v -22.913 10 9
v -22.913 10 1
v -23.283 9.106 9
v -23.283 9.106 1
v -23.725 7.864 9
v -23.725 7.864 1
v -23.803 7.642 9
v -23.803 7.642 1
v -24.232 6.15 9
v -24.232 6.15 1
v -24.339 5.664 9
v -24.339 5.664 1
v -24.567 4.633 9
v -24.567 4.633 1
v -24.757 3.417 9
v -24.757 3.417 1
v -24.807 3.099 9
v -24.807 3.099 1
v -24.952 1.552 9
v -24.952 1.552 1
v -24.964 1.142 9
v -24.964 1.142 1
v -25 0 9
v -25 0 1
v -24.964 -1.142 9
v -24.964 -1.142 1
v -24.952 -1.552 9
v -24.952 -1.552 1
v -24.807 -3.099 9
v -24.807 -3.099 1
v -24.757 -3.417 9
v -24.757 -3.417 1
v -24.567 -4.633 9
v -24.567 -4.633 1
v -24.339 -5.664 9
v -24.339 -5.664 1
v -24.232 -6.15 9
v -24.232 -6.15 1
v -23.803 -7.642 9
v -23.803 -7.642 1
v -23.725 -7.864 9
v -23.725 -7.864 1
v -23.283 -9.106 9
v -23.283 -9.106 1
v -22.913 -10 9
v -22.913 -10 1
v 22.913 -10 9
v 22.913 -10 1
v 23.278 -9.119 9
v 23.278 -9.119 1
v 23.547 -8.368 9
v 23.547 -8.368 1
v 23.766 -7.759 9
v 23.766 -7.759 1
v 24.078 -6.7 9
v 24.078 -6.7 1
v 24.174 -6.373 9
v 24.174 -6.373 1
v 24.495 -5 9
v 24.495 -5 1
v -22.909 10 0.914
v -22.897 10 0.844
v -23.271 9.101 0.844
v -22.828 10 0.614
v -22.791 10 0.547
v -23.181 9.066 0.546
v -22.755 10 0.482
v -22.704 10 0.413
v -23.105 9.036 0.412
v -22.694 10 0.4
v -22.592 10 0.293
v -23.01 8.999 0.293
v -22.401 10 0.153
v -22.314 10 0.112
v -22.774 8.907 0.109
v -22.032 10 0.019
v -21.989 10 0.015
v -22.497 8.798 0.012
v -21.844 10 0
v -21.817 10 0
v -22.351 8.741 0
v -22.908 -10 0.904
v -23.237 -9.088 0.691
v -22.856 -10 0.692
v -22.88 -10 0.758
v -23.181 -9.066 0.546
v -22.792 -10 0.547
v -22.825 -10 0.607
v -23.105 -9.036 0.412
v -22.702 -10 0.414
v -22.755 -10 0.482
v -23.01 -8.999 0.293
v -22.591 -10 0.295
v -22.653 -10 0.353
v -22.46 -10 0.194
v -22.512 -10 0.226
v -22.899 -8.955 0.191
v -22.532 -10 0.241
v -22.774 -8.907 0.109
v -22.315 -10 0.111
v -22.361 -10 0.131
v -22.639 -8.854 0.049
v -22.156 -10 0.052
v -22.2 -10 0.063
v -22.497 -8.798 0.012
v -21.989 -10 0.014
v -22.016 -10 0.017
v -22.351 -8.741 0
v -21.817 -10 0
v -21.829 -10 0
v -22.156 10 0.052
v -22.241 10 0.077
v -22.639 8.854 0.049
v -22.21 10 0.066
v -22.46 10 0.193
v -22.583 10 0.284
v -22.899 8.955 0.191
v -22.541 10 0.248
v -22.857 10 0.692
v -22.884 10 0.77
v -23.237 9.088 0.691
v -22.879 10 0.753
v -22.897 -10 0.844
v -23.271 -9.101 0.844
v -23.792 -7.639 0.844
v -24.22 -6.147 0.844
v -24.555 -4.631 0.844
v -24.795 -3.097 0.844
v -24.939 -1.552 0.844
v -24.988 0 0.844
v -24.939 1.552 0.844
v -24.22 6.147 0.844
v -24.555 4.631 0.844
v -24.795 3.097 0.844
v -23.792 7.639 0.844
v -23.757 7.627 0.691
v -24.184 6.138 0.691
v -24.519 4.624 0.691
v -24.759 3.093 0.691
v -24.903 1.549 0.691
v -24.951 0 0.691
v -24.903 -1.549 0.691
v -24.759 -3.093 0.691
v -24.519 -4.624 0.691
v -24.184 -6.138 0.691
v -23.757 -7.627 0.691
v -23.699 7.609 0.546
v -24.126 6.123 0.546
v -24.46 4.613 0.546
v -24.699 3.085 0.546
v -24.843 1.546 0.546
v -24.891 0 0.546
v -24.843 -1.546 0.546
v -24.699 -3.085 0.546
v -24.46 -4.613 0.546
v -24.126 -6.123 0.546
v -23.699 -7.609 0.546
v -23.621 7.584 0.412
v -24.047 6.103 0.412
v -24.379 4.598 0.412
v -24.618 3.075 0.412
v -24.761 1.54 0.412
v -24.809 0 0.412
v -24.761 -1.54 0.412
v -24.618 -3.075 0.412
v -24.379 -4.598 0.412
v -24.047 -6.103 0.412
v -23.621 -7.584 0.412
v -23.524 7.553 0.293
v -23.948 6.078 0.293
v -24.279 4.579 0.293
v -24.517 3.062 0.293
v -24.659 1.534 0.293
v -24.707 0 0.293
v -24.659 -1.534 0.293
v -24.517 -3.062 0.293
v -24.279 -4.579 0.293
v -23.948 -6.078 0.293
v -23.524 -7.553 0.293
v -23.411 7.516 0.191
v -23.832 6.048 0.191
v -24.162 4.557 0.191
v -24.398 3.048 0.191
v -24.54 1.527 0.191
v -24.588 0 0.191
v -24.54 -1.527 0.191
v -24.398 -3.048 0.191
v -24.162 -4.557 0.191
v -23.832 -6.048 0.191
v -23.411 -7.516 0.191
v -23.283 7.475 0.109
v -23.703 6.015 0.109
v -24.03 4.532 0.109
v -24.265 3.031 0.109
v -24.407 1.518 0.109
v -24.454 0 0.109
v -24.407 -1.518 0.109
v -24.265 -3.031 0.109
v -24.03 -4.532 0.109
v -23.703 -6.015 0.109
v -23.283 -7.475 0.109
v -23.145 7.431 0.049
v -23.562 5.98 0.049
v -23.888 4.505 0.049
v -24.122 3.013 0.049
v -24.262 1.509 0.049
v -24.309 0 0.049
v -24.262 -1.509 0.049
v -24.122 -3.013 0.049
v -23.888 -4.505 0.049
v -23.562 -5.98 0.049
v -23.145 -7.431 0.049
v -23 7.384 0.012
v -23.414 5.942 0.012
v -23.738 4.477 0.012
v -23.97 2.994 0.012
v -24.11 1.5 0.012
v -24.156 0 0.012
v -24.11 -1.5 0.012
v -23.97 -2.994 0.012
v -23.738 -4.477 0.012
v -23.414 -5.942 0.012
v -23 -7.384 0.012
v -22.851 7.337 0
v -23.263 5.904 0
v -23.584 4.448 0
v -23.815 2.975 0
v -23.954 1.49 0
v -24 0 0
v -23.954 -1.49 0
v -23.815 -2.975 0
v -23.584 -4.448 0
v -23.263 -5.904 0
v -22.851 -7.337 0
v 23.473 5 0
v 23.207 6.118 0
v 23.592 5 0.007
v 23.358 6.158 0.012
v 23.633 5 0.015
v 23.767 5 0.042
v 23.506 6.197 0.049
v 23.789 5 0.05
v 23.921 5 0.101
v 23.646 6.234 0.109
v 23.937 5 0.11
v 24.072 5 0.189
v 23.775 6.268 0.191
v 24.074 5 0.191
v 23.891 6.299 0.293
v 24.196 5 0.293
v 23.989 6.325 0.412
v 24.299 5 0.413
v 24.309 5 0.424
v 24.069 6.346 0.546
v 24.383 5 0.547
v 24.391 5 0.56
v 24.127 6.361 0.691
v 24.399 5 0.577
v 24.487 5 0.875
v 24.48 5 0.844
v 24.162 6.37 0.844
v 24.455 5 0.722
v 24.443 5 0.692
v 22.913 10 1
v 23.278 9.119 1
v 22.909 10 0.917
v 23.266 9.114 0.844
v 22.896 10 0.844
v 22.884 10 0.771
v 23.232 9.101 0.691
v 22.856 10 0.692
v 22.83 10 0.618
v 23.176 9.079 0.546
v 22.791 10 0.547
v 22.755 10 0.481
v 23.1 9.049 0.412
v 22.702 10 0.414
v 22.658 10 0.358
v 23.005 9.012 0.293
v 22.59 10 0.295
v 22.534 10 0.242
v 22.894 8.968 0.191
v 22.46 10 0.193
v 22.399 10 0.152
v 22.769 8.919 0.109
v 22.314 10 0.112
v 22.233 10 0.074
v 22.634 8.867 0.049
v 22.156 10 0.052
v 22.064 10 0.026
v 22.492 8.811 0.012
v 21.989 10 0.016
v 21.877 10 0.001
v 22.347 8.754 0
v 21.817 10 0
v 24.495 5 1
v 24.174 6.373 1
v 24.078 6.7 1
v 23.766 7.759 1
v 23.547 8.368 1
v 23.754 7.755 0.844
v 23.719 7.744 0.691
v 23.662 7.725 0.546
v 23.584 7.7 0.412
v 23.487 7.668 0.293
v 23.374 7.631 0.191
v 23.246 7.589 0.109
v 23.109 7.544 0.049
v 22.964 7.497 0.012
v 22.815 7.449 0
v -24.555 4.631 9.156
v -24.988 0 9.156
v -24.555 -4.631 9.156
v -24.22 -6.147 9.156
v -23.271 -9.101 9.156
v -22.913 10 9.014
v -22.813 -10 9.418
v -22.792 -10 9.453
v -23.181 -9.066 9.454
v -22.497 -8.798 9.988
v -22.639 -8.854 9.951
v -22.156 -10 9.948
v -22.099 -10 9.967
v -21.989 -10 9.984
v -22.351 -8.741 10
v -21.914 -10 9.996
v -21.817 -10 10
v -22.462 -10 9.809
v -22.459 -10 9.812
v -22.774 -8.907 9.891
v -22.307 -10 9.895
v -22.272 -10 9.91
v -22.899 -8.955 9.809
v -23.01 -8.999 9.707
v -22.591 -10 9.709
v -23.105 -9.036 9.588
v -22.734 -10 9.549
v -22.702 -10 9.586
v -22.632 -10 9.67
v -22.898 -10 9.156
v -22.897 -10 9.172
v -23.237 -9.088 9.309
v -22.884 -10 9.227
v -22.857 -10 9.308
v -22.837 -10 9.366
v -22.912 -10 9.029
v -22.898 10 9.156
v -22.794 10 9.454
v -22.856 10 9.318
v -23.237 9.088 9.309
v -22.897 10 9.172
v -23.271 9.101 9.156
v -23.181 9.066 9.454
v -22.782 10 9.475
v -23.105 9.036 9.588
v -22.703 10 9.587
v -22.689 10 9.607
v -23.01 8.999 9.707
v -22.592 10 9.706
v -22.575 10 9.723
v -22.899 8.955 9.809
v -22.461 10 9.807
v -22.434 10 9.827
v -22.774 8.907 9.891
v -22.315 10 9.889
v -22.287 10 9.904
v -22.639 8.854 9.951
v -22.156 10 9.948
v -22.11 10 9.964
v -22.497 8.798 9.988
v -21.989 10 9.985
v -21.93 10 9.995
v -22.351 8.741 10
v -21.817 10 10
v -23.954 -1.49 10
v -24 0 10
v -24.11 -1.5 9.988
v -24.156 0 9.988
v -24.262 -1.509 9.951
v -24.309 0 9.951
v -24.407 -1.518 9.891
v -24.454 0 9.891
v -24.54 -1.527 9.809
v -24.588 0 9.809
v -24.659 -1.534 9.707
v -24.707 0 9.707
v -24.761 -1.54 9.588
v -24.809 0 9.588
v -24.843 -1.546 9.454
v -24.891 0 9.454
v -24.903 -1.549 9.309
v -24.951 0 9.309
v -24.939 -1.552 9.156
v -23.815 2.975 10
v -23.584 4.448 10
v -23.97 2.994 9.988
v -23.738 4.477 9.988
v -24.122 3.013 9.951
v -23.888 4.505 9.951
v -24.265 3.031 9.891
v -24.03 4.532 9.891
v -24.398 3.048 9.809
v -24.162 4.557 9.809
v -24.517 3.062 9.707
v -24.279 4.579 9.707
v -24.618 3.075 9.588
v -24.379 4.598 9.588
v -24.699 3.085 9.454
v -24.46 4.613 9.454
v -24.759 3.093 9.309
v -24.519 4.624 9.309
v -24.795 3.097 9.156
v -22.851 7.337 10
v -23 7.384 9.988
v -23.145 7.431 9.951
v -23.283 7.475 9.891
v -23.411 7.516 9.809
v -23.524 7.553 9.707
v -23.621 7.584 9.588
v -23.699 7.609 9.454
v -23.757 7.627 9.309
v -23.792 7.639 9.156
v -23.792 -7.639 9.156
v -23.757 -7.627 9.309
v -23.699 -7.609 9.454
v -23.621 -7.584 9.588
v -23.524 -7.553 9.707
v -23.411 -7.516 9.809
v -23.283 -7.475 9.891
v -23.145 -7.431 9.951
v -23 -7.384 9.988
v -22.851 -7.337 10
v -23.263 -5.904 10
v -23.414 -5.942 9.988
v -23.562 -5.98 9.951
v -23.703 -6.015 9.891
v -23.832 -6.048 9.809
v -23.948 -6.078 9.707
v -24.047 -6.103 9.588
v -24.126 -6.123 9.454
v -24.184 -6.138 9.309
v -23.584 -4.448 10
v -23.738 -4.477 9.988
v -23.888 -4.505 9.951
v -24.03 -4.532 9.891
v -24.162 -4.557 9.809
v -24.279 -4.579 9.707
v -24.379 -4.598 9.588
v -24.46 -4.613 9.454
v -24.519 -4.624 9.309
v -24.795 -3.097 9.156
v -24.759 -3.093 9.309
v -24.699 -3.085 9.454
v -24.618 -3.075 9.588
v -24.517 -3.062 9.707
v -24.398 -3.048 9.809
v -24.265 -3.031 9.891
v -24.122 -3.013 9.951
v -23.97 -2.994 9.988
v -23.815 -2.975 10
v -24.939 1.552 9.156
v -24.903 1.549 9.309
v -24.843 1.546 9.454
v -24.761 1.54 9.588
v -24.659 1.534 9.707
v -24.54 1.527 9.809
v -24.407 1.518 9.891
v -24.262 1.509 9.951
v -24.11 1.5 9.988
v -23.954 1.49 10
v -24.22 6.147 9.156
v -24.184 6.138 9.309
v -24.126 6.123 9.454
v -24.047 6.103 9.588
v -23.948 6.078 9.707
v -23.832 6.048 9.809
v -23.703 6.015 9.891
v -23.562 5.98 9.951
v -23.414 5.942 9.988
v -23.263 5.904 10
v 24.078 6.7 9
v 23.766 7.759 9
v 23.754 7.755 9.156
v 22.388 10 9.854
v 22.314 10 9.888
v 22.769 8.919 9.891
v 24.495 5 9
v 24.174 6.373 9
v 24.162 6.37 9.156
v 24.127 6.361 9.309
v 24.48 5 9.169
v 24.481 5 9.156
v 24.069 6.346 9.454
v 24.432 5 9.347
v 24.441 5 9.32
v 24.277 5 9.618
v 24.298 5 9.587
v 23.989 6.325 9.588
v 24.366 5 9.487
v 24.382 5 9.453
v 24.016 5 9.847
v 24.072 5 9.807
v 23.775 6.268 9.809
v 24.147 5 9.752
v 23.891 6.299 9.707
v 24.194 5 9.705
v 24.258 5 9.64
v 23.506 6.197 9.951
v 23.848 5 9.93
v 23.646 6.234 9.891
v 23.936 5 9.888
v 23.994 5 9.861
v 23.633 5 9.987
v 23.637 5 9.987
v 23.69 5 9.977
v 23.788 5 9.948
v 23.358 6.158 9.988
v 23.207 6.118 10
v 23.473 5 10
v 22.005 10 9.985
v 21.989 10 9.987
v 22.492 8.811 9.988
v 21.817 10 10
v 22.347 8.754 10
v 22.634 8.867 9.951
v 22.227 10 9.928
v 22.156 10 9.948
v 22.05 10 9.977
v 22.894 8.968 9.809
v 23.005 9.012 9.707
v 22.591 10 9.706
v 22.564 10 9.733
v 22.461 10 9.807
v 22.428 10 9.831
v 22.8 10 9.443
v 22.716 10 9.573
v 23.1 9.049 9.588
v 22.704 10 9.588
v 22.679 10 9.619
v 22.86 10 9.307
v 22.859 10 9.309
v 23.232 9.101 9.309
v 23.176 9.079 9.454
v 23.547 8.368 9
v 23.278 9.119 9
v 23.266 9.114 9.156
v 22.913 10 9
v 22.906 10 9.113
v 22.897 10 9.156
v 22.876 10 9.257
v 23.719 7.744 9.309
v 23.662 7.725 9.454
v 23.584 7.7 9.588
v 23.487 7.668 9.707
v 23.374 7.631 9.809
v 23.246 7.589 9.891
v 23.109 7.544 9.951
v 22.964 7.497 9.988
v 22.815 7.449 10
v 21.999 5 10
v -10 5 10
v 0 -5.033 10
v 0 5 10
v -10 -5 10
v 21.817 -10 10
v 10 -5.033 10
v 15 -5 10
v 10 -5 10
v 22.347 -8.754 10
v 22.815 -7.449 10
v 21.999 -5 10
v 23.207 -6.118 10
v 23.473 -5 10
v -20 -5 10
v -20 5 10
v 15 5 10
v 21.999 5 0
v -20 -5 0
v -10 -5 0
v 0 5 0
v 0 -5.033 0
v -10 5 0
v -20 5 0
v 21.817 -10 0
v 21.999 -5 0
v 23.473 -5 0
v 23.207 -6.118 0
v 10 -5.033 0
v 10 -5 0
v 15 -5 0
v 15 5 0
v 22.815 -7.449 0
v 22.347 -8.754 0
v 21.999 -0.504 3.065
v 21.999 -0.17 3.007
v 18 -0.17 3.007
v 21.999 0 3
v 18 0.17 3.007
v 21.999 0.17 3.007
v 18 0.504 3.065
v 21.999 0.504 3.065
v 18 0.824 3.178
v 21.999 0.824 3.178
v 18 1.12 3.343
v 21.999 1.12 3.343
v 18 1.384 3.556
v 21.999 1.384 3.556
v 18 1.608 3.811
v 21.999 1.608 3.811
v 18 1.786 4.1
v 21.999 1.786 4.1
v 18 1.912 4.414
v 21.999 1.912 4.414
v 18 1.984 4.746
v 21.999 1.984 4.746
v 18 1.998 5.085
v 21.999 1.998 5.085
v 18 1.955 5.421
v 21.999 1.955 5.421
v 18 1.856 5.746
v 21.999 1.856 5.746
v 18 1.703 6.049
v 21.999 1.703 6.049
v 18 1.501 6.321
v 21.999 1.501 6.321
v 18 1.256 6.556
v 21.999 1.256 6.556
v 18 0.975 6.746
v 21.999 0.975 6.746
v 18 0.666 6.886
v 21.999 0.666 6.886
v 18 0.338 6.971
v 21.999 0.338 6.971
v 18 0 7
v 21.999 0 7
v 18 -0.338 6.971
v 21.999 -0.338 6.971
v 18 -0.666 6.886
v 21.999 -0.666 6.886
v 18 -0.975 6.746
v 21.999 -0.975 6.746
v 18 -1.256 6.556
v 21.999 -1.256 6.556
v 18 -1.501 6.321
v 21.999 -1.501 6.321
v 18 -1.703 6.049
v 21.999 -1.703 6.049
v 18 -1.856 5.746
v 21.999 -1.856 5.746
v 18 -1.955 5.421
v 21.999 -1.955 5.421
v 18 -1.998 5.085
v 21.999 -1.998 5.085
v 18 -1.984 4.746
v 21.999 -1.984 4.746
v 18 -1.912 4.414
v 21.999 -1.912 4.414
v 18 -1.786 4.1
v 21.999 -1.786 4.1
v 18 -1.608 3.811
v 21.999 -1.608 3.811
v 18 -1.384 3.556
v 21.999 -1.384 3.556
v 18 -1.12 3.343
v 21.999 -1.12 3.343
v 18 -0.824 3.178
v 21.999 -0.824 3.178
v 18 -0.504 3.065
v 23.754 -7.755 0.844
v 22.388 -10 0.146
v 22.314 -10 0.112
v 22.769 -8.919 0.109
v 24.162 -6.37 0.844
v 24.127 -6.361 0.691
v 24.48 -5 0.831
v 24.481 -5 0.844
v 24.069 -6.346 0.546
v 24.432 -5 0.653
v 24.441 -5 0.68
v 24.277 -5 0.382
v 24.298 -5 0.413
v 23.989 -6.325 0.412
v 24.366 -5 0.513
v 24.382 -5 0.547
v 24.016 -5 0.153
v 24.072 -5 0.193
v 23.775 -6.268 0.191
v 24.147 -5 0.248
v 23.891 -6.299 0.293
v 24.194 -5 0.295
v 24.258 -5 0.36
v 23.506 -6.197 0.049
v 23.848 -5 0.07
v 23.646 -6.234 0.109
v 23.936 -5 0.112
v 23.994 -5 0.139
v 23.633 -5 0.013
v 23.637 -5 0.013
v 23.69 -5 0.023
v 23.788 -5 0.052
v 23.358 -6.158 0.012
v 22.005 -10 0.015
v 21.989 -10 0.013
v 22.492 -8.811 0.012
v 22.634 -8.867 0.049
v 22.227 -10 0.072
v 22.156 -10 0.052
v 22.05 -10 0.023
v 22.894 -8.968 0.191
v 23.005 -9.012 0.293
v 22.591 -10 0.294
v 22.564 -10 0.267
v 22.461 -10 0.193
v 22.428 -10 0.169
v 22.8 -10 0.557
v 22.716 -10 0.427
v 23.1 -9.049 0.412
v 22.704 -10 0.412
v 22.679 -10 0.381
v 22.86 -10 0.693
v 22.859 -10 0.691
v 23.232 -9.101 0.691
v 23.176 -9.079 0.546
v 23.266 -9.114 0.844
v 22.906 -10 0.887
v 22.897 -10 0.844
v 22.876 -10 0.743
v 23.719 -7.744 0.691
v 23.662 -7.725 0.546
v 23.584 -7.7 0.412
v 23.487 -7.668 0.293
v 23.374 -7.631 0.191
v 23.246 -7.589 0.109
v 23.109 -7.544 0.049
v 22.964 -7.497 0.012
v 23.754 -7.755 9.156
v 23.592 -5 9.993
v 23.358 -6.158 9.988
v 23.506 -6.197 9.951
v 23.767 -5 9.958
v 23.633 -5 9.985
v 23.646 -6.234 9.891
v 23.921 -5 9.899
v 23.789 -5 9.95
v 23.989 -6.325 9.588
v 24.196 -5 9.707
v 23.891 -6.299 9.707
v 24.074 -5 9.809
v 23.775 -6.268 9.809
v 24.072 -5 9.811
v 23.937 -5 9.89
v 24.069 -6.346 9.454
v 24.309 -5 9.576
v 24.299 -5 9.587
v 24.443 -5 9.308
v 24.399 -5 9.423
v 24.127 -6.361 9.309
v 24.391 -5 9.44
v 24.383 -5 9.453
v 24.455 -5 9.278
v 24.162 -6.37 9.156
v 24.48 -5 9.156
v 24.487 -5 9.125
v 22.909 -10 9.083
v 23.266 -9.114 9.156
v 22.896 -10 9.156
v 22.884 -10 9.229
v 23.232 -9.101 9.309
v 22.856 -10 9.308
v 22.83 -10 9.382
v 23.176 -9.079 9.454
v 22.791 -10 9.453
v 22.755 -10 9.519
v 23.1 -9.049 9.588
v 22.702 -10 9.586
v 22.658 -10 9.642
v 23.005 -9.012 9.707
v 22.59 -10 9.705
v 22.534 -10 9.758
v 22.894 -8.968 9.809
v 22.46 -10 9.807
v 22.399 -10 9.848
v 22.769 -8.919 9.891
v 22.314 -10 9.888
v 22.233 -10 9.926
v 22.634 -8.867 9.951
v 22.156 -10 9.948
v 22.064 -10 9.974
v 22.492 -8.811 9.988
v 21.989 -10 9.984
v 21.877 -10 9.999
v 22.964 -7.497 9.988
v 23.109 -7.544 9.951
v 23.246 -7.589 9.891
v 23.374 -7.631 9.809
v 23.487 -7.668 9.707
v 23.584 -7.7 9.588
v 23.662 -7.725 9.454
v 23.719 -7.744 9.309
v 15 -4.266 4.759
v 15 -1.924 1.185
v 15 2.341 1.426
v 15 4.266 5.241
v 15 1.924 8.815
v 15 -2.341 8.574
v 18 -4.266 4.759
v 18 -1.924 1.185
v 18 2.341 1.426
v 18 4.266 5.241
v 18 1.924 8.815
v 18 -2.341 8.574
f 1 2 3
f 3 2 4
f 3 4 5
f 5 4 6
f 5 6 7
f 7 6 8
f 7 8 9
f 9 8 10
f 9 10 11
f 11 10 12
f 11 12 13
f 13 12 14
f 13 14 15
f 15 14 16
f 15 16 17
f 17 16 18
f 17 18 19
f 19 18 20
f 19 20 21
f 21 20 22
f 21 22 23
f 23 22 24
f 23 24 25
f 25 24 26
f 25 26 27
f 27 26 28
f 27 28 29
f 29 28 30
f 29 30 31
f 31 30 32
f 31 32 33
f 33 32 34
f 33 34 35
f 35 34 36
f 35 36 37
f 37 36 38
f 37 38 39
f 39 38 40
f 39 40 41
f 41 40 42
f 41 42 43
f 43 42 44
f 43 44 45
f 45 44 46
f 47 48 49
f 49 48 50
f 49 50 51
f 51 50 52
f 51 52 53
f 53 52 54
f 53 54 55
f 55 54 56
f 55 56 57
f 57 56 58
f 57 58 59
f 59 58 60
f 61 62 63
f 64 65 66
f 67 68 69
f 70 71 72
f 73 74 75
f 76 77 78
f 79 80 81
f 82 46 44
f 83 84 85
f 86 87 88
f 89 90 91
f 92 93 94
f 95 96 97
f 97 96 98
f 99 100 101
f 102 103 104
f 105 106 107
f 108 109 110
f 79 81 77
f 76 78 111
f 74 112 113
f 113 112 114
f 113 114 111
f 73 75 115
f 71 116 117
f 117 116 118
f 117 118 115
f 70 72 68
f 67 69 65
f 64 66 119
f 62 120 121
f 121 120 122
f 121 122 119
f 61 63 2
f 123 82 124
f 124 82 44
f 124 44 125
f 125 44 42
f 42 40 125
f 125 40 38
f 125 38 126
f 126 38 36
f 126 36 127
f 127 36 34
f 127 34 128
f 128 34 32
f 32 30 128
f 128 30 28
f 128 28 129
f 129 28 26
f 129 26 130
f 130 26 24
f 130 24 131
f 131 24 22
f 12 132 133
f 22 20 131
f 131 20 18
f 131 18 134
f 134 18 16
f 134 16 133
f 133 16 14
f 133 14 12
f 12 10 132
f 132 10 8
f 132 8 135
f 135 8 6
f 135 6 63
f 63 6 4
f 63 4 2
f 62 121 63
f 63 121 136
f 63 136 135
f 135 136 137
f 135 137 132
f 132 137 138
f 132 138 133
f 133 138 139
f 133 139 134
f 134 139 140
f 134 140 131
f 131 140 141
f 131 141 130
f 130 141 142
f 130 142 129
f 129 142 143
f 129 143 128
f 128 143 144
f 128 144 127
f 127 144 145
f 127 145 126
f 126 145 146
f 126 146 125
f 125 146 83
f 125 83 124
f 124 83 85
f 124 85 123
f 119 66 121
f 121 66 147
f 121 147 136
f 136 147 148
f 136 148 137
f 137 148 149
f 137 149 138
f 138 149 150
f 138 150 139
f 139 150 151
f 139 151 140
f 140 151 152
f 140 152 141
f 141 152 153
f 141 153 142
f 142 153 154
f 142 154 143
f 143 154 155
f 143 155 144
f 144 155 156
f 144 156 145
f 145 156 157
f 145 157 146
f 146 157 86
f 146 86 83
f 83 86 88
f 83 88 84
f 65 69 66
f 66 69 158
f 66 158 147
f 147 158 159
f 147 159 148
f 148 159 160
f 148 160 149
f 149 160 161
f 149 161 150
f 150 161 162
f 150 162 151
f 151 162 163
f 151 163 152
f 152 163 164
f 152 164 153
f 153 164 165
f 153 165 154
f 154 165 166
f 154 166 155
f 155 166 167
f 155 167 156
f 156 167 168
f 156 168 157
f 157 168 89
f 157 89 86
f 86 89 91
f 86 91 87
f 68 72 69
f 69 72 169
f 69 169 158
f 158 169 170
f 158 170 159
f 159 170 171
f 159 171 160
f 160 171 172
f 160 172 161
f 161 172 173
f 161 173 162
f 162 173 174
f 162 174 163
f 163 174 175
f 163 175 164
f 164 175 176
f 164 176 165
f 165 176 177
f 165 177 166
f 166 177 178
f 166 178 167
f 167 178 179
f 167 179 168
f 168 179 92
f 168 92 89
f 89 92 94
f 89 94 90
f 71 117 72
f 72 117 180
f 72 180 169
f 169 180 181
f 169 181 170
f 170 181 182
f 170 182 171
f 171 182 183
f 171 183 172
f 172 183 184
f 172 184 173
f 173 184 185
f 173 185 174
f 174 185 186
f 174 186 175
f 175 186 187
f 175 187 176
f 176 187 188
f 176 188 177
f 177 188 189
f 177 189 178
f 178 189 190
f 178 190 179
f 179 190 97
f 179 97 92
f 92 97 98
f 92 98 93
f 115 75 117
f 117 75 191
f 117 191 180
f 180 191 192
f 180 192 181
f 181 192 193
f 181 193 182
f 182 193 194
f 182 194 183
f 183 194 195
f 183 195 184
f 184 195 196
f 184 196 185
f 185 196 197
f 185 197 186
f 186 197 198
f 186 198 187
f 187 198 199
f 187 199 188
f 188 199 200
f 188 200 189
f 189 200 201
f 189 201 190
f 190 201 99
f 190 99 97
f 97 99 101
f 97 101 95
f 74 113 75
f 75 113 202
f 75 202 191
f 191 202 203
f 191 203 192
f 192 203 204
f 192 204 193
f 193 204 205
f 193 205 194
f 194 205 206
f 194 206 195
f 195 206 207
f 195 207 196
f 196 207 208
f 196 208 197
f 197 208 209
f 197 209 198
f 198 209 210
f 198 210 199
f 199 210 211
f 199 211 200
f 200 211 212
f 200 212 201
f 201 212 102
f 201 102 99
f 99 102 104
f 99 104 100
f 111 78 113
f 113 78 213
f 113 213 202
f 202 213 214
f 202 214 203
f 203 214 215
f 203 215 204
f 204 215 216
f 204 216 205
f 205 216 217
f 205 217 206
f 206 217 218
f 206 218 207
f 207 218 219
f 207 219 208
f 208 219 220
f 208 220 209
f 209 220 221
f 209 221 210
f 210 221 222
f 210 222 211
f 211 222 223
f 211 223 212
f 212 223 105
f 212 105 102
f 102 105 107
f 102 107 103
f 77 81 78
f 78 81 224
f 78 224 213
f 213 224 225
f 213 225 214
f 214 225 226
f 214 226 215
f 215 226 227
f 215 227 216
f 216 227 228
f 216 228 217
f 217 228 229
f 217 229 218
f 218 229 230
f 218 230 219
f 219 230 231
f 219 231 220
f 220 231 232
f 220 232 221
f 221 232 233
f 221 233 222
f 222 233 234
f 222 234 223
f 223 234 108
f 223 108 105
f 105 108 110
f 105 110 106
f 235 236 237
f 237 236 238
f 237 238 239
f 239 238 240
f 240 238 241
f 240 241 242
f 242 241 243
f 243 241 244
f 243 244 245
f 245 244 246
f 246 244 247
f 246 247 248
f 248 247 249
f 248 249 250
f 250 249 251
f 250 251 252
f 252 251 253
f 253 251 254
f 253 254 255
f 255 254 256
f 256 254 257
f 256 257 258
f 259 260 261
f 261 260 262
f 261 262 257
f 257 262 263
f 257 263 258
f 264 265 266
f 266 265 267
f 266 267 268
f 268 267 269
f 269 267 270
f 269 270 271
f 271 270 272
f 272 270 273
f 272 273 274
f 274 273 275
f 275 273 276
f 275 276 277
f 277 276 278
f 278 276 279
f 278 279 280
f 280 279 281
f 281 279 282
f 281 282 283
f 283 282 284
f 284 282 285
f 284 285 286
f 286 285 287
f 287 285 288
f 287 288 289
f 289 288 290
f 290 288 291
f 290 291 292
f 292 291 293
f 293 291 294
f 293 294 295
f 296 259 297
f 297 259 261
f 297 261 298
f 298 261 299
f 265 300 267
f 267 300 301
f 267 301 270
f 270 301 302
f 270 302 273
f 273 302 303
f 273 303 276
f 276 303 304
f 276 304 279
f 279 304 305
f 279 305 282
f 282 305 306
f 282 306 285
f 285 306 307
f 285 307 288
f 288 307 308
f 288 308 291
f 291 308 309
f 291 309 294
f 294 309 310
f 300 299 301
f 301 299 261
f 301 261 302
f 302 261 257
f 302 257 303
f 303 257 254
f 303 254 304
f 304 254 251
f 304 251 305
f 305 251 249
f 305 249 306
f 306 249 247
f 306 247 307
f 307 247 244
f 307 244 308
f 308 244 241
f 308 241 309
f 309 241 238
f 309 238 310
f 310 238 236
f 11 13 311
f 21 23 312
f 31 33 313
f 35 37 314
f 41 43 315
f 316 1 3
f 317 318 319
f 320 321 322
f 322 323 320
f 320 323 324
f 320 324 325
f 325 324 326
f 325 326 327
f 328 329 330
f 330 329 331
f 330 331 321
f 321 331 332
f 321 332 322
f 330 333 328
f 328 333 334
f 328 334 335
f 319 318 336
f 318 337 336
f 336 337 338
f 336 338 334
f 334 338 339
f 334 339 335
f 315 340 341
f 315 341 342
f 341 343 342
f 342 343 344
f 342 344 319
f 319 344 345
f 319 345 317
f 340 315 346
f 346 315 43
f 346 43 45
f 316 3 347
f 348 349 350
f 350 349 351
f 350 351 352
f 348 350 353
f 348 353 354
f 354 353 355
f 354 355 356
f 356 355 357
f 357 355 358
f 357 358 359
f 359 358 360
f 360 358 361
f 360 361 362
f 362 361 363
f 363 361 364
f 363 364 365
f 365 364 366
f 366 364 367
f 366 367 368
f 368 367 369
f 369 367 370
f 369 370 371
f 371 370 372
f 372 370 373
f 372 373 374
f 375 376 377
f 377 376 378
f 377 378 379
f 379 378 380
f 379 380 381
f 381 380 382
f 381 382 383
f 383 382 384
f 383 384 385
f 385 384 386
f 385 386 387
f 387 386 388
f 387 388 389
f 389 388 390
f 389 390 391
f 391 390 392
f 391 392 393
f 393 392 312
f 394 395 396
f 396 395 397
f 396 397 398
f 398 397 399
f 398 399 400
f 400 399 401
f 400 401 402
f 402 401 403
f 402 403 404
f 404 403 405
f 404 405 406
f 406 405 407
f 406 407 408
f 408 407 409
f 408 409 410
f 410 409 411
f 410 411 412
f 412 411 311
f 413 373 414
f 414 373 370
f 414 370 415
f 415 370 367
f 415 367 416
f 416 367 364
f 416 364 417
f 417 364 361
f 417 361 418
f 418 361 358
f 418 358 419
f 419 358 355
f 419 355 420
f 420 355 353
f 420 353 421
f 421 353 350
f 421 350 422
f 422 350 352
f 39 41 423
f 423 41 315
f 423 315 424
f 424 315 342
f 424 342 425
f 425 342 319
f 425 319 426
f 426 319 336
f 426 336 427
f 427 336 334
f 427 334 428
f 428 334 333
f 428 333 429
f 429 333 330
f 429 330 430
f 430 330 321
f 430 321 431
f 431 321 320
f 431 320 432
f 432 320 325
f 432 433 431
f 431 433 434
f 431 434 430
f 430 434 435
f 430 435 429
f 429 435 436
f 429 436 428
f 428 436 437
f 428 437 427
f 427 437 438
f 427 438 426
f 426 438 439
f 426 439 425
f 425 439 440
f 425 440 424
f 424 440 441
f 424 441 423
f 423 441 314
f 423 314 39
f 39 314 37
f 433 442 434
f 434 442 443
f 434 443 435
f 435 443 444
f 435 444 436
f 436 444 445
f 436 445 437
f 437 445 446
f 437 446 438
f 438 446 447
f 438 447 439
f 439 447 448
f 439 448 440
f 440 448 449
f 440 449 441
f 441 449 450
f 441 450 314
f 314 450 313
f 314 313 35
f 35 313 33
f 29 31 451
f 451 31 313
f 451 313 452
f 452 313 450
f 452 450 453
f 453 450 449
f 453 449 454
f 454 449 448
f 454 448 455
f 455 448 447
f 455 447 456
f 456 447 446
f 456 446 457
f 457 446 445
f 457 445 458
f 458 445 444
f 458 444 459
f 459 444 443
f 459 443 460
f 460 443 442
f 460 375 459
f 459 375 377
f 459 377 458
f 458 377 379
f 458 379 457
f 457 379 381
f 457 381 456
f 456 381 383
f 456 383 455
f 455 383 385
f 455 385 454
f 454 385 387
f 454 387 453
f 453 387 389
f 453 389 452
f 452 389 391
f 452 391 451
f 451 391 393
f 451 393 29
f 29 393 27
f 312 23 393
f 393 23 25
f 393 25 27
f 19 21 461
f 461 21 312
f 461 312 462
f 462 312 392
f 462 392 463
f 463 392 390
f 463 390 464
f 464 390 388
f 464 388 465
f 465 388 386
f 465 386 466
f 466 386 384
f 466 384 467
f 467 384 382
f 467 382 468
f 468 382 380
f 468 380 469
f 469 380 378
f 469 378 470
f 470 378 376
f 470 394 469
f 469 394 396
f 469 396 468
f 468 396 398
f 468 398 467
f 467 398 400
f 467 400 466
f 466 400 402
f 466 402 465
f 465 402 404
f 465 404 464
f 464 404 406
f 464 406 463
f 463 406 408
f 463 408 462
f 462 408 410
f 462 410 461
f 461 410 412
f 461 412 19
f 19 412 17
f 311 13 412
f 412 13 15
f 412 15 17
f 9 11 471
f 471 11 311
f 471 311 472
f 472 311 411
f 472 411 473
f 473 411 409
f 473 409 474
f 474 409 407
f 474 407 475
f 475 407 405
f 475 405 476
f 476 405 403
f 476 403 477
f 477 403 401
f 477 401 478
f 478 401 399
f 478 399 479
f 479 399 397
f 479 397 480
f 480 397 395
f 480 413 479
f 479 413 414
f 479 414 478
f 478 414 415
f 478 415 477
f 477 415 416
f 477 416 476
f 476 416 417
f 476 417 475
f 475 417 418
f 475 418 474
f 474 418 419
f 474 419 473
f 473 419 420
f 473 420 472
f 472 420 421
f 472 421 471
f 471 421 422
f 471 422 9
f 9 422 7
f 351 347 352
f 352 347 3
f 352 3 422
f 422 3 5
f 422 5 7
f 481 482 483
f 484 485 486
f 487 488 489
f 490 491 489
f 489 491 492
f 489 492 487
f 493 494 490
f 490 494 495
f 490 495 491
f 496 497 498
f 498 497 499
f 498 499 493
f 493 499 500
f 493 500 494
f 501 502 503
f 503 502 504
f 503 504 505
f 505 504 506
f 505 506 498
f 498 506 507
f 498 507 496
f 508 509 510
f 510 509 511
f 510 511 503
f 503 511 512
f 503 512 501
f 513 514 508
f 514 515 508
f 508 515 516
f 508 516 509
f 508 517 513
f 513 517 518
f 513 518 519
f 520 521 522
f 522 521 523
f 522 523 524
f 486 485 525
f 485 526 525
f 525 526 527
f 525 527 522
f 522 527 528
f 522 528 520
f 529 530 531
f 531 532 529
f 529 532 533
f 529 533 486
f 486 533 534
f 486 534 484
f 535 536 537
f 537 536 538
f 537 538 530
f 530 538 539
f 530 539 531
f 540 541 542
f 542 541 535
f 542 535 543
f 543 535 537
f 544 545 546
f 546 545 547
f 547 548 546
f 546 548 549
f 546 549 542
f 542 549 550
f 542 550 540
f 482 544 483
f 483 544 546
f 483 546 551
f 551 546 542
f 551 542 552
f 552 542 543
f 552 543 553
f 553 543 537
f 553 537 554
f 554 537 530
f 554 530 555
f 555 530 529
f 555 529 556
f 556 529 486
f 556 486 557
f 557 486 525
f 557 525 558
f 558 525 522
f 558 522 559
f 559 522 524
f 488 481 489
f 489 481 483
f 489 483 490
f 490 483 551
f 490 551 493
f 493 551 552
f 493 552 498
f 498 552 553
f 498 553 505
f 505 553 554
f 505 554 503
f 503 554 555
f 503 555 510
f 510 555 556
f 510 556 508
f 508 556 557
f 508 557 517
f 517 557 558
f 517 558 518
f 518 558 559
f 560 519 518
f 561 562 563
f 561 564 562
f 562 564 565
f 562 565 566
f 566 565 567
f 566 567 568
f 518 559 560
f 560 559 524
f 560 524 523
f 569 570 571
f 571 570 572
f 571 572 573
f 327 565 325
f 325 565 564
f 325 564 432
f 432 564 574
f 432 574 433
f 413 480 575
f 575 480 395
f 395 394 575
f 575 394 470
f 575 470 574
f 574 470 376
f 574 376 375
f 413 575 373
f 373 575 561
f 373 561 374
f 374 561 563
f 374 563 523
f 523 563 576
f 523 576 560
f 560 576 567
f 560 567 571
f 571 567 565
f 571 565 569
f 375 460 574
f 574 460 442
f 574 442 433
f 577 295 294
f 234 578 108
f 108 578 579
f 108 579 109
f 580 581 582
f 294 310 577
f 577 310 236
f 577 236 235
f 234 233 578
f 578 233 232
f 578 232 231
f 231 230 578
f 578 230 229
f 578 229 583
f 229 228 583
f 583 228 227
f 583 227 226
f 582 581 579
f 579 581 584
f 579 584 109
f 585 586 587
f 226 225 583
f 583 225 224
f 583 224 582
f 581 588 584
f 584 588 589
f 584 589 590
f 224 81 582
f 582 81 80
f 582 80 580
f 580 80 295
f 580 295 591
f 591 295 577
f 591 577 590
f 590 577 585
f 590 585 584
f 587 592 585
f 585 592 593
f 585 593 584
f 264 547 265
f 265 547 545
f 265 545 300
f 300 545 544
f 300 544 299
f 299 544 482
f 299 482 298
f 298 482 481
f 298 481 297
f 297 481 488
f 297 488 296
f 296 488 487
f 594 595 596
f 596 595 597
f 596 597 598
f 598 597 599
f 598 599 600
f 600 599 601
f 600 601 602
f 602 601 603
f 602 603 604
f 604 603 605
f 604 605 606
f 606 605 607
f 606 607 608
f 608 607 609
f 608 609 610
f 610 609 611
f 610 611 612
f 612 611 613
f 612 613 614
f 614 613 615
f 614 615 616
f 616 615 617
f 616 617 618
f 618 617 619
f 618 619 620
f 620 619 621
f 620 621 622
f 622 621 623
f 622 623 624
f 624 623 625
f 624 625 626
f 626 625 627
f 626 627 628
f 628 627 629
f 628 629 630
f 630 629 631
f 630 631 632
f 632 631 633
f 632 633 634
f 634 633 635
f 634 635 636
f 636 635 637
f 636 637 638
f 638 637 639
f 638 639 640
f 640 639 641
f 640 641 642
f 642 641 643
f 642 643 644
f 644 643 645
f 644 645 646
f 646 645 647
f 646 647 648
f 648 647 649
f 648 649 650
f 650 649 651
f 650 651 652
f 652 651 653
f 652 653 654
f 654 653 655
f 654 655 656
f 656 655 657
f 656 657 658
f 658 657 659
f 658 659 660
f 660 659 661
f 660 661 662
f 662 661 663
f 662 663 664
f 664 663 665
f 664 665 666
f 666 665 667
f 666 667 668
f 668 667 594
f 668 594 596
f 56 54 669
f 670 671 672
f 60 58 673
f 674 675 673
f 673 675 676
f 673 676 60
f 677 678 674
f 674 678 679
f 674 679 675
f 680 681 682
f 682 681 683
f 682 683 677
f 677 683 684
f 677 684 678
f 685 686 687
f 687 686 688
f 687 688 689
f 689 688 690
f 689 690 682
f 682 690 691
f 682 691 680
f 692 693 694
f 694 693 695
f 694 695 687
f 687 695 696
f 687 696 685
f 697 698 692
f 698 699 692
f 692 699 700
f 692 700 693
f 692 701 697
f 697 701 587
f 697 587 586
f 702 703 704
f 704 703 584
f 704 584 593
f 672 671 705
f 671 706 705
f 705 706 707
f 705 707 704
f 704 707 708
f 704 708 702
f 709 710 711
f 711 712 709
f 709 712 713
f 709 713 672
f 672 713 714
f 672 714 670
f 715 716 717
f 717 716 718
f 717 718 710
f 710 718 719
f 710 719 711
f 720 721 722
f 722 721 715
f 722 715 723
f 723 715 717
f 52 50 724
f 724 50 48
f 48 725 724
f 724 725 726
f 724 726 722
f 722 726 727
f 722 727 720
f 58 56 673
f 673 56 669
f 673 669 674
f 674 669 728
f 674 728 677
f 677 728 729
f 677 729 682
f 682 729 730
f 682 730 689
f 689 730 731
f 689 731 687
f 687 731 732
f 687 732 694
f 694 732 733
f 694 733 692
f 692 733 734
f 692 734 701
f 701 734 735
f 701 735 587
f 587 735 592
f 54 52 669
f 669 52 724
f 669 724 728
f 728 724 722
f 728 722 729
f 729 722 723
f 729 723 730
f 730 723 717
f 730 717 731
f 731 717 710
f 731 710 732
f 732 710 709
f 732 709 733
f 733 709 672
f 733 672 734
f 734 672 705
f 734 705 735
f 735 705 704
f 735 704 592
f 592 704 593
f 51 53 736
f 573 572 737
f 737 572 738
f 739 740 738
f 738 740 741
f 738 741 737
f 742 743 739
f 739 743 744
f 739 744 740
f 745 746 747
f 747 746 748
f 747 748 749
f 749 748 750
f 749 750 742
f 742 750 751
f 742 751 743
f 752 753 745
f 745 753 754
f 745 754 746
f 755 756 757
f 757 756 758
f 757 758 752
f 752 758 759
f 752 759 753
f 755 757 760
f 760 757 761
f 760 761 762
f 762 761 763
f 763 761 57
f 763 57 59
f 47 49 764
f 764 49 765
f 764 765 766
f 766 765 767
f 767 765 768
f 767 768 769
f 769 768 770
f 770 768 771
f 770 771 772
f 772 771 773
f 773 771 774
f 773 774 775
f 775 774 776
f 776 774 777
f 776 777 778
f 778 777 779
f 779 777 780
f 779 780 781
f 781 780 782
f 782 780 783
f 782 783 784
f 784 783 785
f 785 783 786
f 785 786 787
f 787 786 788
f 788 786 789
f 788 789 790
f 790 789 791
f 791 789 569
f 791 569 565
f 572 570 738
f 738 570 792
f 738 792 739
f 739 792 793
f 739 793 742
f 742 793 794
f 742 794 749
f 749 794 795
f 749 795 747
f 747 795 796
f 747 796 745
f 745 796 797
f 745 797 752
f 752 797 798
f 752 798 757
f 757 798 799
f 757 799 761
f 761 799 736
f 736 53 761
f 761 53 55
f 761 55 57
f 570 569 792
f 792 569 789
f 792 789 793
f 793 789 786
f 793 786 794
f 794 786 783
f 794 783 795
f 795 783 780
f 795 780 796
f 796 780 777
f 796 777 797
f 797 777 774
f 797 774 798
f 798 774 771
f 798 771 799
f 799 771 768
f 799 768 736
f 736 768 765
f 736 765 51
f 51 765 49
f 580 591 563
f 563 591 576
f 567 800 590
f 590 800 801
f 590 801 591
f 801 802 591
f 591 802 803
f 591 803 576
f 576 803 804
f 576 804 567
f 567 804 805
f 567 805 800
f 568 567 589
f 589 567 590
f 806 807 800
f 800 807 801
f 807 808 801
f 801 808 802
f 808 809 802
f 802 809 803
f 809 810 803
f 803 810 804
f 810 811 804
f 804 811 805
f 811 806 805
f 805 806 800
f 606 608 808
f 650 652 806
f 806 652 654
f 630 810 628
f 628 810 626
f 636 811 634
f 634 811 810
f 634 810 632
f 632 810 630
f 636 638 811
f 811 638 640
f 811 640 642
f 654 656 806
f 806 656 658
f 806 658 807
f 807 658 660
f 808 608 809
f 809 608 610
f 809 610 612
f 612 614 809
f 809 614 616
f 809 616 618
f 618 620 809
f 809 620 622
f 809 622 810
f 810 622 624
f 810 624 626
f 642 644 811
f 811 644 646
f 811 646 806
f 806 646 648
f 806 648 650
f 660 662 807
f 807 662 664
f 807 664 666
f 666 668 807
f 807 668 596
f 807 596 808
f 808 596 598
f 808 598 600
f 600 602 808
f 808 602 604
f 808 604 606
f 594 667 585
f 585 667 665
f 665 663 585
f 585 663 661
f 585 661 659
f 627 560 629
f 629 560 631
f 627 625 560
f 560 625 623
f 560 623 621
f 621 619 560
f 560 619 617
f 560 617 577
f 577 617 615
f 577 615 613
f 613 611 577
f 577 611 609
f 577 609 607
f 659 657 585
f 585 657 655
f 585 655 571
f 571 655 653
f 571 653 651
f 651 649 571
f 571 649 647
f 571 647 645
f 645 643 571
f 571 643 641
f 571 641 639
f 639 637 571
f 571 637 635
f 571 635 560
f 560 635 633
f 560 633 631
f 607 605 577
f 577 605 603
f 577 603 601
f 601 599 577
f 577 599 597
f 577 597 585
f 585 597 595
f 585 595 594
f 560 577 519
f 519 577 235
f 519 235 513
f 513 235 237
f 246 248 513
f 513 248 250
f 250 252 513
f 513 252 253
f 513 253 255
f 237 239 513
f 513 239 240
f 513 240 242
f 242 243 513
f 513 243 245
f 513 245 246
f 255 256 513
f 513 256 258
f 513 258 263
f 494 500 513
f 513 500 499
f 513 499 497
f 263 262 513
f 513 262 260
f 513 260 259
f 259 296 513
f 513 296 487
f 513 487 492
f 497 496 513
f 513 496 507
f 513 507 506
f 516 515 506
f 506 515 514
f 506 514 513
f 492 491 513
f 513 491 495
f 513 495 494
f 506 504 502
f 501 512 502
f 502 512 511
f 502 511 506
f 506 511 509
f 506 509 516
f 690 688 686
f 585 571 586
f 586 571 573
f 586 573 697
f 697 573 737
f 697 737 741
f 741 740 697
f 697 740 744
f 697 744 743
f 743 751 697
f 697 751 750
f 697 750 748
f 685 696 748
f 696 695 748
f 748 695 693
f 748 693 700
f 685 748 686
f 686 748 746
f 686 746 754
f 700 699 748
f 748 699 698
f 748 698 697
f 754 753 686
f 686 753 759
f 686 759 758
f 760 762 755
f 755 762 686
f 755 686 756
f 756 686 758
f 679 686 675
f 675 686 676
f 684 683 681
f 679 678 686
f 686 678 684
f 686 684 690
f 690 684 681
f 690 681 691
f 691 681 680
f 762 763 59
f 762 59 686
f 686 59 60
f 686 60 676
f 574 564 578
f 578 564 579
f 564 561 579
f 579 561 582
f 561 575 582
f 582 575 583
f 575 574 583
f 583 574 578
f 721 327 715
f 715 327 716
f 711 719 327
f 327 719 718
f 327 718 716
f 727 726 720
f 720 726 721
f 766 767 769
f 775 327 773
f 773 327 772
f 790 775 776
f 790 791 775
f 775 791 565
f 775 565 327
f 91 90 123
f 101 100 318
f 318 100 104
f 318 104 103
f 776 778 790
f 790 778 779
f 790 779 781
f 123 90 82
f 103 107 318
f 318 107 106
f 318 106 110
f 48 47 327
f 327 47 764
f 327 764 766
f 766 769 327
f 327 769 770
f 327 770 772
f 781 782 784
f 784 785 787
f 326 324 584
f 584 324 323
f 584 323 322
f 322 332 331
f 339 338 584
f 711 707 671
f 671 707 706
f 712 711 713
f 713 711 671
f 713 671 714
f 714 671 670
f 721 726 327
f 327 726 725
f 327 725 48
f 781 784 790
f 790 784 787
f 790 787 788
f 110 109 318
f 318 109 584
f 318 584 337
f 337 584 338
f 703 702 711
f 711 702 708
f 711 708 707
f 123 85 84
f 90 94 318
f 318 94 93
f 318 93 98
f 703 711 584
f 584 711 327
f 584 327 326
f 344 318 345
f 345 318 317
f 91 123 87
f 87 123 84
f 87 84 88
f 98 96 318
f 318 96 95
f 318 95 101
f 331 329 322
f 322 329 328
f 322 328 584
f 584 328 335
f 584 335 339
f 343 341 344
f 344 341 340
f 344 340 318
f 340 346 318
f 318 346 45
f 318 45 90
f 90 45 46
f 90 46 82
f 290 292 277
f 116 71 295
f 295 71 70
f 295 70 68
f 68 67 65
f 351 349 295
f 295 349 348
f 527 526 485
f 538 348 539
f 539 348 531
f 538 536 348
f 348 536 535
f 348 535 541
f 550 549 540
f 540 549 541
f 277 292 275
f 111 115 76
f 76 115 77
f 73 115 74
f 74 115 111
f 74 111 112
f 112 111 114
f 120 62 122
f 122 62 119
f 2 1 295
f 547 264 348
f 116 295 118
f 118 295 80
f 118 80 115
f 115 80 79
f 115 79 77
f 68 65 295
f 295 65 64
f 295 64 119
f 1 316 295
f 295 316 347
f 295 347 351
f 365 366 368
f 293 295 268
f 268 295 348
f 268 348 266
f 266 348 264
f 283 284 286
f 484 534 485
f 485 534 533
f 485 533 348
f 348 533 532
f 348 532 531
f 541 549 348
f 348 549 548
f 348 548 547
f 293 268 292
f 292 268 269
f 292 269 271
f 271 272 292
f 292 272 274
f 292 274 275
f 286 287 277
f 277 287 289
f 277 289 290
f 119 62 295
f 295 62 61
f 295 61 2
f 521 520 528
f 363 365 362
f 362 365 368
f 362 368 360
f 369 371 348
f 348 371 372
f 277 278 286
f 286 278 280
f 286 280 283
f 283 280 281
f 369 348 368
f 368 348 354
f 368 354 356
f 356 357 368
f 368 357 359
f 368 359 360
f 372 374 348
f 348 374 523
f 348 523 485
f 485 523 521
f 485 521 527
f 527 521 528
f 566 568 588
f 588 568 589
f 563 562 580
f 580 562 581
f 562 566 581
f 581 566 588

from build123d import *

# Parameters (mm, degrees)
SKETCH1_R               = 25
BOSS_EXTRUDE1_DEPTH     = 10
CUT_EXTRUDE1_DEPTH      = 37.742346142
CUT_EXTRUDE1_DEPTH_BACK = 37.742346142
CUT_EXTRUDE2_DEPTH      = 3
SKETCH5_R               = 2
CUT_EXTRUDE4_DEPTH      = 13
FILLET1_R               = 1
CUT_EXTRUDE6_DEPTH      = 3
CUT_EXTRUDE6_DEPTH_BACK = 3
SKETCH6_W               = 10
SKETCH6_H               = 10
SKETCH7_W               = 10
SKETCH7_H               = 30
BOSS_EXTRUDE2_DEPTH     = 10
SKETCH8_W               = 10
SKETCH8_H               = 10
BOSS_EXTRUDE3_DEPTH     = 10
SKETCH9_W               = 10
SKETCH9_H               = 10
CUT_EXTRUDE7_DEPTH      = 10
SKETCH10_W              = 83.743898857
SKETCH10_H              = 28.854414255
SKETCH10_W_2            = 82.461079615
SKETCH10_H_2            = 26.234851391
CUT_EXTRUDE8_DEPTH      = 10
SKETCH11_W              = 10
SKETCH11_H              = 10.032703296
CUT_EXTRUDE9_DEPTH      = 10


with BuildPart() as part:
    # Sketch1 → Boss-Extrude1 (new body)
    with BuildSketch(Plane.XY):
        Circle(SKETCH1_R)
    extrude(amount=BOSS_EXTRUDE1_DEPTH)

    # Sketch2 → Cut-Extrude1 (cut, two sides: drawn at the far end of the back side and taken through both)
    with BuildSketch(Plane.XY.offset(10).offset(-CUT_EXTRUDE1_DEPTH_BACK)):
        Polygon((5, -5), (15, -5), (15, 5), (5, 5), (5, 15), (-5, 15), (-5, 5), (-15, 5), (-15, -5), (-5, -5), (-5, -15), (5, -15), align=None)
    extrude(amount=CUT_EXTRUDE1_DEPTH + CUT_EXTRUDE1_DEPTH_BACK, mode=Mode.SUBTRACT)

    # Sketch4 → Cut-Extrude2 (cut)
    with BuildSketch(Plane.ZY.offset(-15)):
        Polygon((4.759098318, -4.265594884), (8.57366269, -2.341424419), (8.814564373, 1.924170465), (5.240901682, 4.265594884), (1.42633731, 2.341424419), (1.185435627, -1.924170465), align=None)
    extrude(amount=-CUT_EXTRUDE2_DEPTH, mode=Mode.SUBTRACT)

    # Sketch5 → Cut-Extrude4 (cut)
    with BuildSketch(Plane.ZY.offset(-18)):
        with Locations((5, 0)):
            Circle(SKETCH5_R)
    extrude(amount=-CUT_EXTRUDE4_DEPTH, mode=Mode.SUBTRACT)

    # Fillet1
    fillet1_edges = [part.edges().sort_by_distance(p)[0] for p in [
        (-25, 0, 0),
        (-25, 0, 10),
    ]]
    fillet(fillet1_edges, radius=FILLET1_R)

    # Sketch6 → Cut-Extrude6 (cut, two sides: drawn at the far end of the back side and taken through both)
    with BuildSketch(Plane.YZ.offset(24.999151456).offset(-CUT_EXTRUDE6_DEPTH_BACK)):
        with Locations((0, 5)):
            Rectangle(SKETCH6_W, SKETCH6_H)
    extrude(amount=CUT_EXTRUDE6_DEPTH + CUT_EXTRUDE6_DEPTH_BACK, mode=Mode.SUBTRACT)

    # Sketch7 → Boss-Extrude2 (add)
    with BuildSketch(Plane(origin=(0, 0, 0), x_dir=(-1, 0, 0), z_dir=(0, 0, -1))):
        Rectangle(SKETCH7_W, SKETCH7_H)
    extrude(amount=-BOSS_EXTRUDE2_DEPTH)

    # Sketch8 → Boss-Extrude3 (add)
    with BuildSketch(Plane(origin=(0, 0, 0), x_dir=(-1, 0, 0), z_dir=(0, 0, -1))):
        with Locations((10, 0)):
            Rectangle(SKETCH8_W, SKETCH8_H)
    extrude(amount=-BOSS_EXTRUDE3_DEPTH)

    # Sketch9 → Cut-Extrude7 (cut)
    with BuildSketch(Plane(origin=(0, 0, 0), x_dir=(-1, 0, 0), z_dir=(0, 0, -1))):
        with Locations((15, 0)):
            Rectangle(SKETCH9_W, SKETCH9_H)
    extrude(amount=-CUT_EXTRUDE7_DEPTH, mode=Mode.SUBTRACT)

    # Sketch10 → Cut-Extrude8 (cut)
    with BuildSketch(Plane(origin=(0, 0, 0), x_dir=(-1, 0, 0), z_dir=(0, 0, -1))):
        with Locations((0.995128198, 24.427207128)):
            Rectangle(SKETCH10_W, SKETCH10_H)
        with Locations((-3.54772161, -23.117425695)):
            Rectangle(SKETCH10_W_2, SKETCH10_H_2)
    extrude(amount=-CUT_EXTRUDE8_DEPTH, mode=Mode.SUBTRACT)

    # Sketch11 → Cut-Extrude9 (cut)
    with BuildSketch(Plane(origin=(0, 0, 0), x_dir=(-1, 0, 0), z_dir=(0, 0, -1))):
        with Locations((-5, -0.016351648)):
            Rectangle(SKETCH11_W, SKETCH11_H)
    extrude(amount=-CUT_EXTRUDE9_DEPTH, mode=Mode.SUBTRACT)


solid = part.part
